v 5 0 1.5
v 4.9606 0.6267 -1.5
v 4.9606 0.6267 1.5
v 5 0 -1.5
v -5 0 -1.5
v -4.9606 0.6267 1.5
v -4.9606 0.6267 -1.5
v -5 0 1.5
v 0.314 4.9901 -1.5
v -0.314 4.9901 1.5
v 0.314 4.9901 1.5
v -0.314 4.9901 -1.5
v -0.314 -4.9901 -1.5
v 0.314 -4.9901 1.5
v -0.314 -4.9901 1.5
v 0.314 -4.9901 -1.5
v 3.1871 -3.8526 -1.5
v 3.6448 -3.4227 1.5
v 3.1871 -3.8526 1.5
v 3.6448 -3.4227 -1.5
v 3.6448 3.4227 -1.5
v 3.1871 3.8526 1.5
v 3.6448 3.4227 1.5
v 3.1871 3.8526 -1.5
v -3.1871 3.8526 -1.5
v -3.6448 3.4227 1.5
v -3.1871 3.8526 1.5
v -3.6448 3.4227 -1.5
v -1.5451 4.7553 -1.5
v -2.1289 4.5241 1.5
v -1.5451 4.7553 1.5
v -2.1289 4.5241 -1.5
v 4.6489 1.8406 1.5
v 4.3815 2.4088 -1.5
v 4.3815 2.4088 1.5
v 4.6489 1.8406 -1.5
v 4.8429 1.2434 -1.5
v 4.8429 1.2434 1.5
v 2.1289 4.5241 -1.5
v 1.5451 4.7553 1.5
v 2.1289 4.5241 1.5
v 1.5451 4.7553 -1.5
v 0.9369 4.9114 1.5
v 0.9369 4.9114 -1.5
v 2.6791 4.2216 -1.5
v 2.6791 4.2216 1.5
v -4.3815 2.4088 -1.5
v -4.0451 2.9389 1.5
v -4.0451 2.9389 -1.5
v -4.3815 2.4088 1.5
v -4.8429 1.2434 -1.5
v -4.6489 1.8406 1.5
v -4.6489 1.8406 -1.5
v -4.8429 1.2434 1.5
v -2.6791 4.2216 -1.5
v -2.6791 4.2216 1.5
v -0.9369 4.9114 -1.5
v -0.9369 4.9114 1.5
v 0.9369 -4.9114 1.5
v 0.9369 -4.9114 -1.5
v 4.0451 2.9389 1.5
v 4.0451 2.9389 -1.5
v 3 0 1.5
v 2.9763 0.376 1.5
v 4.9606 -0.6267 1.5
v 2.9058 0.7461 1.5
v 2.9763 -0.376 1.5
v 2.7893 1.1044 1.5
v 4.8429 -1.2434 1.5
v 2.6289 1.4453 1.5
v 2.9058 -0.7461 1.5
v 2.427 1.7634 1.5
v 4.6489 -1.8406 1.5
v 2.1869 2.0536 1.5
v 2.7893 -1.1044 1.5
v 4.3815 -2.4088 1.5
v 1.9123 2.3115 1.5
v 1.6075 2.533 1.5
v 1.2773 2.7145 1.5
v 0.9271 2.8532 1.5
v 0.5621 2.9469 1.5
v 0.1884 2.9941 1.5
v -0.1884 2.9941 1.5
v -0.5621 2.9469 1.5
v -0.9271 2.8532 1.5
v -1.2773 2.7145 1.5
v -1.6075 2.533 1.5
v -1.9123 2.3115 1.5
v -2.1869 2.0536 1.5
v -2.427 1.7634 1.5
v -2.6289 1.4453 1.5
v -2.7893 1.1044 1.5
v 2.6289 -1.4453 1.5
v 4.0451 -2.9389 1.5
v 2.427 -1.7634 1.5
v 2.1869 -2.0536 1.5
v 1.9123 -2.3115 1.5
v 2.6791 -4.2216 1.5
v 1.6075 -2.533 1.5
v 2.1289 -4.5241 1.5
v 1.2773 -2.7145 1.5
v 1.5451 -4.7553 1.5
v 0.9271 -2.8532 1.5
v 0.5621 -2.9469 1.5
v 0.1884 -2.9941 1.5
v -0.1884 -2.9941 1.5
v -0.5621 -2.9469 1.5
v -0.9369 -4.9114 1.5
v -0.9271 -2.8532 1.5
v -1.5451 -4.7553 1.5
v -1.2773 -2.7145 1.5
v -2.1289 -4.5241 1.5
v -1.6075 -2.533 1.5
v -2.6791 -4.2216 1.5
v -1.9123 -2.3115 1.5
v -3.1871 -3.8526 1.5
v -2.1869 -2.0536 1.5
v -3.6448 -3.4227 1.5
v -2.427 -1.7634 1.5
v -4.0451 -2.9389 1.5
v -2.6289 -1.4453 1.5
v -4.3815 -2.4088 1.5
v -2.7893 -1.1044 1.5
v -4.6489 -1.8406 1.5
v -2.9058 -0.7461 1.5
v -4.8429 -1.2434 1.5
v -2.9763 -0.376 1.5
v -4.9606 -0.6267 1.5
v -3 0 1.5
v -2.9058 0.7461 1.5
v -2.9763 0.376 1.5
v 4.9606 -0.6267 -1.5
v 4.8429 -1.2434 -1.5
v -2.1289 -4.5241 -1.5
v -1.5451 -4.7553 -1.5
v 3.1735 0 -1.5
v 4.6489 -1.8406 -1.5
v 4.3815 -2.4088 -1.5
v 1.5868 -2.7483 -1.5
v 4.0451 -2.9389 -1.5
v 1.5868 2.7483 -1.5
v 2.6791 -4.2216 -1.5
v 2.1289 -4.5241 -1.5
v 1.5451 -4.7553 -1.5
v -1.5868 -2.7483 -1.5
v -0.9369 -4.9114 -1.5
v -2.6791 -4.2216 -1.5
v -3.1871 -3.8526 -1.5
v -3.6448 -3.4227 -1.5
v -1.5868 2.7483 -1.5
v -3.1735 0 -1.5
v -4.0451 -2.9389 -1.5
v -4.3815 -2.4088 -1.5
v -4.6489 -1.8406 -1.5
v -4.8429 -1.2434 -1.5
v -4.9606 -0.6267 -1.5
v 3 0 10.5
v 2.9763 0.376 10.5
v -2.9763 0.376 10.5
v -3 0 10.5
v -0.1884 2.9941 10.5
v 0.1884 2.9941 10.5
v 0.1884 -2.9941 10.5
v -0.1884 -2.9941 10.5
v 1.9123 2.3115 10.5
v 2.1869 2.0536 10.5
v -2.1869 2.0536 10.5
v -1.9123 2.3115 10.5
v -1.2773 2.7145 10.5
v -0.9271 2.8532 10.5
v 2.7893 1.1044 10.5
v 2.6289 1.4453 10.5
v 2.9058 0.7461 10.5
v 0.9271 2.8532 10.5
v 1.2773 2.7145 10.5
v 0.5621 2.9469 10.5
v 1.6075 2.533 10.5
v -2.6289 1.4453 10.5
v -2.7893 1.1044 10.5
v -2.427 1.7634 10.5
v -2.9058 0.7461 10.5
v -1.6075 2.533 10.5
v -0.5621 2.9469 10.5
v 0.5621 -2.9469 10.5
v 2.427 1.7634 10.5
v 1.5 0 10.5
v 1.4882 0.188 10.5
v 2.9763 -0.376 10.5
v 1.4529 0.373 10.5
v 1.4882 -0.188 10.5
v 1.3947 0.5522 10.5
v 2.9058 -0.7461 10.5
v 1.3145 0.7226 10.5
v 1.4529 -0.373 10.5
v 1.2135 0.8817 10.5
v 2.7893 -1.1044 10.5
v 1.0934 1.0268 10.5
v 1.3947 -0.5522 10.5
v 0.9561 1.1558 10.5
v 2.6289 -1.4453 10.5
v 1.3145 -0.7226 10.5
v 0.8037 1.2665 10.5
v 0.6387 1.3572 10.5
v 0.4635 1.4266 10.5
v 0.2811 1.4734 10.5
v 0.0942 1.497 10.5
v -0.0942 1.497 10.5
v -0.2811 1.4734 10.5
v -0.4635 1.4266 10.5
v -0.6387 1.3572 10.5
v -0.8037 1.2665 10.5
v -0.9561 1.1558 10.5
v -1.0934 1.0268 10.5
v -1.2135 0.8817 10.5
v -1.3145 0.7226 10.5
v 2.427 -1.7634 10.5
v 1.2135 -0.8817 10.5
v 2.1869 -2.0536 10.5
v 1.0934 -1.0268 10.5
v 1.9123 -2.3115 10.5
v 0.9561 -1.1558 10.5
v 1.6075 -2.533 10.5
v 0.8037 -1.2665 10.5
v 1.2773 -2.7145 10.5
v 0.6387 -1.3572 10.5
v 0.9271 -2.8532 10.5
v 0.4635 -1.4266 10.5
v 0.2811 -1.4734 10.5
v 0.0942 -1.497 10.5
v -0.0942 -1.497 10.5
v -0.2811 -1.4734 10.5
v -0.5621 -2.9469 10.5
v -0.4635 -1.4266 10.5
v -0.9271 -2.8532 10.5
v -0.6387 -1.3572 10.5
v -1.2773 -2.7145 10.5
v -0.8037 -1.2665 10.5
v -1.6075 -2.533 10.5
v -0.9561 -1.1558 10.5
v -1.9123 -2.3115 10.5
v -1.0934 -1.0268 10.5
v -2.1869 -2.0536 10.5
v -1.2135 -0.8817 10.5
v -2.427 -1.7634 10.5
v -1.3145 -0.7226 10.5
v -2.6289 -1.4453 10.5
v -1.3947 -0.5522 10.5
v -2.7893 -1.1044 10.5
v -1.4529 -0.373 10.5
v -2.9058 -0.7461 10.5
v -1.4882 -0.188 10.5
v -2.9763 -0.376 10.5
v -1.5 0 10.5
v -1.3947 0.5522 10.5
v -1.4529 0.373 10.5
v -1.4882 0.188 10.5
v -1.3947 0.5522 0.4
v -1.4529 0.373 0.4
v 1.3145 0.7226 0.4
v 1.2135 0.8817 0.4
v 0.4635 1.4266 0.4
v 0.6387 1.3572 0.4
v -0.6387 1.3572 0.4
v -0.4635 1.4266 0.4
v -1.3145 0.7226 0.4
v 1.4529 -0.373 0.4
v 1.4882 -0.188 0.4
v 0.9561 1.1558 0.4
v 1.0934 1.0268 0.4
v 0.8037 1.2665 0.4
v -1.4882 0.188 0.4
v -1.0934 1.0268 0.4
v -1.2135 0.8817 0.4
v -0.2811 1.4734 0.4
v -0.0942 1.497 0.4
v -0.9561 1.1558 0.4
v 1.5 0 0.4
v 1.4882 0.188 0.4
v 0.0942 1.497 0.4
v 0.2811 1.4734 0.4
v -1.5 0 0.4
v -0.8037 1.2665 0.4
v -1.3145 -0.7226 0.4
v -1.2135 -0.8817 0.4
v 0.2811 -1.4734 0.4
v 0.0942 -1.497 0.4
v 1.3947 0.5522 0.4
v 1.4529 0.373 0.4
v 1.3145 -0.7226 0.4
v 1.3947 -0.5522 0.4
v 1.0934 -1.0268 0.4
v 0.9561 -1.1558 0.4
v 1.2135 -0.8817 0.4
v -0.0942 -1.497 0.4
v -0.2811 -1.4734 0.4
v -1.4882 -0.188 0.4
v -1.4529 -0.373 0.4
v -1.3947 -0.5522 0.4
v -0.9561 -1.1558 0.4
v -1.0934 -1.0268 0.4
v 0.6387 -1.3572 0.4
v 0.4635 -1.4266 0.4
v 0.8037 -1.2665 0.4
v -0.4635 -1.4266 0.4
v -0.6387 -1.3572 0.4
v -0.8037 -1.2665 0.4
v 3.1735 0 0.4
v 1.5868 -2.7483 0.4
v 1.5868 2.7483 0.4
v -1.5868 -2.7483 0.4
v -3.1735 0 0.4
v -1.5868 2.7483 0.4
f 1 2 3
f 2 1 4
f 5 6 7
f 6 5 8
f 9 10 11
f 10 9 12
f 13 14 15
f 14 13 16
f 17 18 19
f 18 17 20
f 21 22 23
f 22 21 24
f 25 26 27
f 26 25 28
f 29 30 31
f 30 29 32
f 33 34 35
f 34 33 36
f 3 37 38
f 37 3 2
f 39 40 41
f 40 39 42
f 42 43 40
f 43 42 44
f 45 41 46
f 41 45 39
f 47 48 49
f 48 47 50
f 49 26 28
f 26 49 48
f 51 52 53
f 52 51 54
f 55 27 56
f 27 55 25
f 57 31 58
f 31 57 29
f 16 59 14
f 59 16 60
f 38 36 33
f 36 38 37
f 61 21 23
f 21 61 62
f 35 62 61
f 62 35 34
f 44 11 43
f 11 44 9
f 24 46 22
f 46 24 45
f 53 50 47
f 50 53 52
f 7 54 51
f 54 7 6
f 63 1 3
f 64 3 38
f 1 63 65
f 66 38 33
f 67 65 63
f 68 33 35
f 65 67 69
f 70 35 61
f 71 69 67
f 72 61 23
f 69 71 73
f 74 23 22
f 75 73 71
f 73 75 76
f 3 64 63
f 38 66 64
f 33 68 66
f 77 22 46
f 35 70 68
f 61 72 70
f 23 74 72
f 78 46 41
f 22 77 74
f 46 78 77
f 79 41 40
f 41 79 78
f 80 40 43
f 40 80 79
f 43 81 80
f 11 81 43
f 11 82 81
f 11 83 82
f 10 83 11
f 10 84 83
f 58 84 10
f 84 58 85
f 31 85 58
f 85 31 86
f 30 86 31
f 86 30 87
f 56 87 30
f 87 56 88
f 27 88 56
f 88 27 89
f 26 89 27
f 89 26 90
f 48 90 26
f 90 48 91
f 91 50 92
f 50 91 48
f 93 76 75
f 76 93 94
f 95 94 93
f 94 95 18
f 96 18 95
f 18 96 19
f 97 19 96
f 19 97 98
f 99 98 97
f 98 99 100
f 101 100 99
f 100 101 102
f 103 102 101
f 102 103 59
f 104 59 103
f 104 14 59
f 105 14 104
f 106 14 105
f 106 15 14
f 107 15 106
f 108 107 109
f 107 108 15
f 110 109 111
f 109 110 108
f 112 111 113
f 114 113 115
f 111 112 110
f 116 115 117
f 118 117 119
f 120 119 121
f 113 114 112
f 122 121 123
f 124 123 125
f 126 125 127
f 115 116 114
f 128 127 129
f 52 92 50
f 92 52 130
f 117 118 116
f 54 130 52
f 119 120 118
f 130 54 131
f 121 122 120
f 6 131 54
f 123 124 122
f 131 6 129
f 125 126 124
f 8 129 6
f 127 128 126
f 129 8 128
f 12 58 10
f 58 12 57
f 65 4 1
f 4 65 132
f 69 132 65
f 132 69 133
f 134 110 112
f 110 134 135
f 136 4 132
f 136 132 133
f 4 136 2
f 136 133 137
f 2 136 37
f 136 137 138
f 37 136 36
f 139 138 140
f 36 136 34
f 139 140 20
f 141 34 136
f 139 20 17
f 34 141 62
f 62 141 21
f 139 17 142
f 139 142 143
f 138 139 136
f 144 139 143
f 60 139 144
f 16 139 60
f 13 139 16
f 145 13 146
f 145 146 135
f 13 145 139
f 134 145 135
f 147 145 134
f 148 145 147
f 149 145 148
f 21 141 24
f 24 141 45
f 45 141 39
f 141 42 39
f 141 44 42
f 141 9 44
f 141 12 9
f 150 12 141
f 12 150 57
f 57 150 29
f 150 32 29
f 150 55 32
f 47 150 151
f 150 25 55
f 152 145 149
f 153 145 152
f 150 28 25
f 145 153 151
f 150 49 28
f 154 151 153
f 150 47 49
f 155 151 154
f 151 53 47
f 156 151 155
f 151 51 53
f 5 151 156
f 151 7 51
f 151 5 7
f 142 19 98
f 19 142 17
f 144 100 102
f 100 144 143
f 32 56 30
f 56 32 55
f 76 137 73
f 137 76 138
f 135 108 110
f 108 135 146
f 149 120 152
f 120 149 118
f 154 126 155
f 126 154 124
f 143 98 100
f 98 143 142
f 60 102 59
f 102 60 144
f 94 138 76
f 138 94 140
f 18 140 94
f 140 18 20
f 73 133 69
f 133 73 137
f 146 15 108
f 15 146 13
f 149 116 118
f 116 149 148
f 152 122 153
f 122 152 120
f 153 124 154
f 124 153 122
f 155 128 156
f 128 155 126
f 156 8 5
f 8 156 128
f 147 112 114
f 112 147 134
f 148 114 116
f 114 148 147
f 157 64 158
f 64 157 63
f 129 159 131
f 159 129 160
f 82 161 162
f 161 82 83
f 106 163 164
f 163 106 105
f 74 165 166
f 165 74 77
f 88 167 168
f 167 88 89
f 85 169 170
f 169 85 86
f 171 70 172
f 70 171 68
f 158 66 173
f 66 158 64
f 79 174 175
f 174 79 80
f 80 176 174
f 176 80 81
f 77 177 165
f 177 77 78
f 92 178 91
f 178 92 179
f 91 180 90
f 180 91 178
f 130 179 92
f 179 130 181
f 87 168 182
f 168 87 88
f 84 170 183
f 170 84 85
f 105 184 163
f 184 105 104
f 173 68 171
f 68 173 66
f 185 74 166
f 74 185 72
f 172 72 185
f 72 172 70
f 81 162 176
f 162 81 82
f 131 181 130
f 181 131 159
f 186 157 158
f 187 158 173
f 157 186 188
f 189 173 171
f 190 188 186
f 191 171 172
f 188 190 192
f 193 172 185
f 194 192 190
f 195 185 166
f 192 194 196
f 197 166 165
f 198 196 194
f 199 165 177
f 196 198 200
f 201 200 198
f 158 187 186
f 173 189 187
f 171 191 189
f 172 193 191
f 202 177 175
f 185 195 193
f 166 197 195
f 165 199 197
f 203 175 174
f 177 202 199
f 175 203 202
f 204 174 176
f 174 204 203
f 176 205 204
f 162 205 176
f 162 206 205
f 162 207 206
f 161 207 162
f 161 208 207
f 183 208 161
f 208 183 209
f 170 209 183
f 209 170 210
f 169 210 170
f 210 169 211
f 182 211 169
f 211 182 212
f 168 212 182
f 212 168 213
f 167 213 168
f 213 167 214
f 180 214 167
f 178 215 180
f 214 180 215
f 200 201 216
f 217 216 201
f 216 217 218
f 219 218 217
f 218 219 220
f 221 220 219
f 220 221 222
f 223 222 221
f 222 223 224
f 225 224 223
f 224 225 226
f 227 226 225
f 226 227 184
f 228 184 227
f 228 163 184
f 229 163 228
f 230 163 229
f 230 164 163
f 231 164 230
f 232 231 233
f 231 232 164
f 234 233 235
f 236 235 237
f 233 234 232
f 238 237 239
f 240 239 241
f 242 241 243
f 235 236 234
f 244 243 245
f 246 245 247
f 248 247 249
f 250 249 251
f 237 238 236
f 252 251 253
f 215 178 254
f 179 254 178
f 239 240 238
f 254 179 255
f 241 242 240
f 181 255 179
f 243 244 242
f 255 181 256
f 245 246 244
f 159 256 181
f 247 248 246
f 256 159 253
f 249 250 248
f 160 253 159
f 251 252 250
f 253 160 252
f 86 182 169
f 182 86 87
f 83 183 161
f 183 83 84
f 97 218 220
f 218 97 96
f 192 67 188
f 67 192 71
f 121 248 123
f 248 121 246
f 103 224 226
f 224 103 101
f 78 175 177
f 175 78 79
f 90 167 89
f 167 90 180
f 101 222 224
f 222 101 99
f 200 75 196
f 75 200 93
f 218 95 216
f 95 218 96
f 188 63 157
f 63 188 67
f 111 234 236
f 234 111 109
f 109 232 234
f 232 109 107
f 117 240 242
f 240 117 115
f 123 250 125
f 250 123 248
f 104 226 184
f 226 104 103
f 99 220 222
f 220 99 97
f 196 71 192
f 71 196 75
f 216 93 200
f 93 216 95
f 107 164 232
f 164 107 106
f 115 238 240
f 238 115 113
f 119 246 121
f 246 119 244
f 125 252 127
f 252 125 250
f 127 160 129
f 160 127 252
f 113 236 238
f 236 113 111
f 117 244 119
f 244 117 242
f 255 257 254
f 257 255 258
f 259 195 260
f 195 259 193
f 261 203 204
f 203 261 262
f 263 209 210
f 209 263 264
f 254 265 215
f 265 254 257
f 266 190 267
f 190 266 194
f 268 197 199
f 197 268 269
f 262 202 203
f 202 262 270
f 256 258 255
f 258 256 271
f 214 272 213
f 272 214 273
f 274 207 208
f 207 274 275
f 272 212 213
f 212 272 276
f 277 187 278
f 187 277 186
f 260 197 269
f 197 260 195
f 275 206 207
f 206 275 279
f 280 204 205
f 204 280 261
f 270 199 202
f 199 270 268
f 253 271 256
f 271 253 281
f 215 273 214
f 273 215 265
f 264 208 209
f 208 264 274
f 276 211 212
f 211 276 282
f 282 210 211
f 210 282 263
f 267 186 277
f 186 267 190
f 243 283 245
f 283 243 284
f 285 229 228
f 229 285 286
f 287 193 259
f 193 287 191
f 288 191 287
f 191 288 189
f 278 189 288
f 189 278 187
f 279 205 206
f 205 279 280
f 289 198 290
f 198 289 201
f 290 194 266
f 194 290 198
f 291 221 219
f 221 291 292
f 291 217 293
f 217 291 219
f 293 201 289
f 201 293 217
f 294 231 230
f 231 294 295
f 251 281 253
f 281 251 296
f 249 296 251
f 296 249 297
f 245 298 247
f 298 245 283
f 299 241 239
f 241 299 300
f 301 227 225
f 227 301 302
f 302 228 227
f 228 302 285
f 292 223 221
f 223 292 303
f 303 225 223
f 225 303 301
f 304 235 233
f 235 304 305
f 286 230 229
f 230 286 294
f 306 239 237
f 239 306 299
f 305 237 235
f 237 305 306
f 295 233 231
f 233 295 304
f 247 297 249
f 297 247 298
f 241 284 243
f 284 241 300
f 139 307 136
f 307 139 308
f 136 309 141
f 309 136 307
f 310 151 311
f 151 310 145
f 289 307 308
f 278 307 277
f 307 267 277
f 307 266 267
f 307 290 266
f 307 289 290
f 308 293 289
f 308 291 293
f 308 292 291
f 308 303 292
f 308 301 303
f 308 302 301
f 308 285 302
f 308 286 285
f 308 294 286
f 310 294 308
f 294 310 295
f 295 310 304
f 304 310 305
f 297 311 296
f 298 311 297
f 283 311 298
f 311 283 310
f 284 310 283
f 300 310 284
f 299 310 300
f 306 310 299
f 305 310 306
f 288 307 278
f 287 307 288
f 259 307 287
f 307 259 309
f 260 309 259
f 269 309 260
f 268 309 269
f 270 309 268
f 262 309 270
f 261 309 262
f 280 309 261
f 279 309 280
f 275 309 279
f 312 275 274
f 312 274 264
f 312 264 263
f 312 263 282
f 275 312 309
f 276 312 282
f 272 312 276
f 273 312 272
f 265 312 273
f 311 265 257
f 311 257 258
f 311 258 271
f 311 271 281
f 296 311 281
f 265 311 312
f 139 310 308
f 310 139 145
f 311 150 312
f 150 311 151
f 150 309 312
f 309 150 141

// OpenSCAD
$fn = 50;


difference() {
	union() {
		translate(v = [0, 0, -1.5000000000]) {
			rotate(a = [0, 0, 0]) {
				cylinder(h = 3, r = 5.0000000000);
			}
		}
		translate(v = [0, 0, -1.5000000000]) {
			rotate(a = [0, 0, 0]) {
				cylinder(h = 12, r = 3.0000000000);
			}
		}
	}
	union() {
		translate(v = [0, 0, -125.0000000000]) {
			rotate(a = [0, 0, 0]) {
				cylinder(h = 250, r = 1.5000000000);
			}
		}
		translate(v = [0, 0, -2.1000000000]) {
			rotate(a = [0, 0, 0]) {
				#translate(v = [0, 0, 0]) {
					rotate(a = [0, 0, 0]) {
						linear_extrude(height = 2.5000000000) {
							polygon(points = [[3.1735000000, 0.0000000000], [1.5867500000, 2.7483316189], [-1.5867500000, 2.7483316189], [-3.1735000000, 0.0000000000], [-1.5867500000, -2.7483316189], [1.5867500000, -2.7483316189]]);
						}
					}
				}
			}
		}
	}
}
